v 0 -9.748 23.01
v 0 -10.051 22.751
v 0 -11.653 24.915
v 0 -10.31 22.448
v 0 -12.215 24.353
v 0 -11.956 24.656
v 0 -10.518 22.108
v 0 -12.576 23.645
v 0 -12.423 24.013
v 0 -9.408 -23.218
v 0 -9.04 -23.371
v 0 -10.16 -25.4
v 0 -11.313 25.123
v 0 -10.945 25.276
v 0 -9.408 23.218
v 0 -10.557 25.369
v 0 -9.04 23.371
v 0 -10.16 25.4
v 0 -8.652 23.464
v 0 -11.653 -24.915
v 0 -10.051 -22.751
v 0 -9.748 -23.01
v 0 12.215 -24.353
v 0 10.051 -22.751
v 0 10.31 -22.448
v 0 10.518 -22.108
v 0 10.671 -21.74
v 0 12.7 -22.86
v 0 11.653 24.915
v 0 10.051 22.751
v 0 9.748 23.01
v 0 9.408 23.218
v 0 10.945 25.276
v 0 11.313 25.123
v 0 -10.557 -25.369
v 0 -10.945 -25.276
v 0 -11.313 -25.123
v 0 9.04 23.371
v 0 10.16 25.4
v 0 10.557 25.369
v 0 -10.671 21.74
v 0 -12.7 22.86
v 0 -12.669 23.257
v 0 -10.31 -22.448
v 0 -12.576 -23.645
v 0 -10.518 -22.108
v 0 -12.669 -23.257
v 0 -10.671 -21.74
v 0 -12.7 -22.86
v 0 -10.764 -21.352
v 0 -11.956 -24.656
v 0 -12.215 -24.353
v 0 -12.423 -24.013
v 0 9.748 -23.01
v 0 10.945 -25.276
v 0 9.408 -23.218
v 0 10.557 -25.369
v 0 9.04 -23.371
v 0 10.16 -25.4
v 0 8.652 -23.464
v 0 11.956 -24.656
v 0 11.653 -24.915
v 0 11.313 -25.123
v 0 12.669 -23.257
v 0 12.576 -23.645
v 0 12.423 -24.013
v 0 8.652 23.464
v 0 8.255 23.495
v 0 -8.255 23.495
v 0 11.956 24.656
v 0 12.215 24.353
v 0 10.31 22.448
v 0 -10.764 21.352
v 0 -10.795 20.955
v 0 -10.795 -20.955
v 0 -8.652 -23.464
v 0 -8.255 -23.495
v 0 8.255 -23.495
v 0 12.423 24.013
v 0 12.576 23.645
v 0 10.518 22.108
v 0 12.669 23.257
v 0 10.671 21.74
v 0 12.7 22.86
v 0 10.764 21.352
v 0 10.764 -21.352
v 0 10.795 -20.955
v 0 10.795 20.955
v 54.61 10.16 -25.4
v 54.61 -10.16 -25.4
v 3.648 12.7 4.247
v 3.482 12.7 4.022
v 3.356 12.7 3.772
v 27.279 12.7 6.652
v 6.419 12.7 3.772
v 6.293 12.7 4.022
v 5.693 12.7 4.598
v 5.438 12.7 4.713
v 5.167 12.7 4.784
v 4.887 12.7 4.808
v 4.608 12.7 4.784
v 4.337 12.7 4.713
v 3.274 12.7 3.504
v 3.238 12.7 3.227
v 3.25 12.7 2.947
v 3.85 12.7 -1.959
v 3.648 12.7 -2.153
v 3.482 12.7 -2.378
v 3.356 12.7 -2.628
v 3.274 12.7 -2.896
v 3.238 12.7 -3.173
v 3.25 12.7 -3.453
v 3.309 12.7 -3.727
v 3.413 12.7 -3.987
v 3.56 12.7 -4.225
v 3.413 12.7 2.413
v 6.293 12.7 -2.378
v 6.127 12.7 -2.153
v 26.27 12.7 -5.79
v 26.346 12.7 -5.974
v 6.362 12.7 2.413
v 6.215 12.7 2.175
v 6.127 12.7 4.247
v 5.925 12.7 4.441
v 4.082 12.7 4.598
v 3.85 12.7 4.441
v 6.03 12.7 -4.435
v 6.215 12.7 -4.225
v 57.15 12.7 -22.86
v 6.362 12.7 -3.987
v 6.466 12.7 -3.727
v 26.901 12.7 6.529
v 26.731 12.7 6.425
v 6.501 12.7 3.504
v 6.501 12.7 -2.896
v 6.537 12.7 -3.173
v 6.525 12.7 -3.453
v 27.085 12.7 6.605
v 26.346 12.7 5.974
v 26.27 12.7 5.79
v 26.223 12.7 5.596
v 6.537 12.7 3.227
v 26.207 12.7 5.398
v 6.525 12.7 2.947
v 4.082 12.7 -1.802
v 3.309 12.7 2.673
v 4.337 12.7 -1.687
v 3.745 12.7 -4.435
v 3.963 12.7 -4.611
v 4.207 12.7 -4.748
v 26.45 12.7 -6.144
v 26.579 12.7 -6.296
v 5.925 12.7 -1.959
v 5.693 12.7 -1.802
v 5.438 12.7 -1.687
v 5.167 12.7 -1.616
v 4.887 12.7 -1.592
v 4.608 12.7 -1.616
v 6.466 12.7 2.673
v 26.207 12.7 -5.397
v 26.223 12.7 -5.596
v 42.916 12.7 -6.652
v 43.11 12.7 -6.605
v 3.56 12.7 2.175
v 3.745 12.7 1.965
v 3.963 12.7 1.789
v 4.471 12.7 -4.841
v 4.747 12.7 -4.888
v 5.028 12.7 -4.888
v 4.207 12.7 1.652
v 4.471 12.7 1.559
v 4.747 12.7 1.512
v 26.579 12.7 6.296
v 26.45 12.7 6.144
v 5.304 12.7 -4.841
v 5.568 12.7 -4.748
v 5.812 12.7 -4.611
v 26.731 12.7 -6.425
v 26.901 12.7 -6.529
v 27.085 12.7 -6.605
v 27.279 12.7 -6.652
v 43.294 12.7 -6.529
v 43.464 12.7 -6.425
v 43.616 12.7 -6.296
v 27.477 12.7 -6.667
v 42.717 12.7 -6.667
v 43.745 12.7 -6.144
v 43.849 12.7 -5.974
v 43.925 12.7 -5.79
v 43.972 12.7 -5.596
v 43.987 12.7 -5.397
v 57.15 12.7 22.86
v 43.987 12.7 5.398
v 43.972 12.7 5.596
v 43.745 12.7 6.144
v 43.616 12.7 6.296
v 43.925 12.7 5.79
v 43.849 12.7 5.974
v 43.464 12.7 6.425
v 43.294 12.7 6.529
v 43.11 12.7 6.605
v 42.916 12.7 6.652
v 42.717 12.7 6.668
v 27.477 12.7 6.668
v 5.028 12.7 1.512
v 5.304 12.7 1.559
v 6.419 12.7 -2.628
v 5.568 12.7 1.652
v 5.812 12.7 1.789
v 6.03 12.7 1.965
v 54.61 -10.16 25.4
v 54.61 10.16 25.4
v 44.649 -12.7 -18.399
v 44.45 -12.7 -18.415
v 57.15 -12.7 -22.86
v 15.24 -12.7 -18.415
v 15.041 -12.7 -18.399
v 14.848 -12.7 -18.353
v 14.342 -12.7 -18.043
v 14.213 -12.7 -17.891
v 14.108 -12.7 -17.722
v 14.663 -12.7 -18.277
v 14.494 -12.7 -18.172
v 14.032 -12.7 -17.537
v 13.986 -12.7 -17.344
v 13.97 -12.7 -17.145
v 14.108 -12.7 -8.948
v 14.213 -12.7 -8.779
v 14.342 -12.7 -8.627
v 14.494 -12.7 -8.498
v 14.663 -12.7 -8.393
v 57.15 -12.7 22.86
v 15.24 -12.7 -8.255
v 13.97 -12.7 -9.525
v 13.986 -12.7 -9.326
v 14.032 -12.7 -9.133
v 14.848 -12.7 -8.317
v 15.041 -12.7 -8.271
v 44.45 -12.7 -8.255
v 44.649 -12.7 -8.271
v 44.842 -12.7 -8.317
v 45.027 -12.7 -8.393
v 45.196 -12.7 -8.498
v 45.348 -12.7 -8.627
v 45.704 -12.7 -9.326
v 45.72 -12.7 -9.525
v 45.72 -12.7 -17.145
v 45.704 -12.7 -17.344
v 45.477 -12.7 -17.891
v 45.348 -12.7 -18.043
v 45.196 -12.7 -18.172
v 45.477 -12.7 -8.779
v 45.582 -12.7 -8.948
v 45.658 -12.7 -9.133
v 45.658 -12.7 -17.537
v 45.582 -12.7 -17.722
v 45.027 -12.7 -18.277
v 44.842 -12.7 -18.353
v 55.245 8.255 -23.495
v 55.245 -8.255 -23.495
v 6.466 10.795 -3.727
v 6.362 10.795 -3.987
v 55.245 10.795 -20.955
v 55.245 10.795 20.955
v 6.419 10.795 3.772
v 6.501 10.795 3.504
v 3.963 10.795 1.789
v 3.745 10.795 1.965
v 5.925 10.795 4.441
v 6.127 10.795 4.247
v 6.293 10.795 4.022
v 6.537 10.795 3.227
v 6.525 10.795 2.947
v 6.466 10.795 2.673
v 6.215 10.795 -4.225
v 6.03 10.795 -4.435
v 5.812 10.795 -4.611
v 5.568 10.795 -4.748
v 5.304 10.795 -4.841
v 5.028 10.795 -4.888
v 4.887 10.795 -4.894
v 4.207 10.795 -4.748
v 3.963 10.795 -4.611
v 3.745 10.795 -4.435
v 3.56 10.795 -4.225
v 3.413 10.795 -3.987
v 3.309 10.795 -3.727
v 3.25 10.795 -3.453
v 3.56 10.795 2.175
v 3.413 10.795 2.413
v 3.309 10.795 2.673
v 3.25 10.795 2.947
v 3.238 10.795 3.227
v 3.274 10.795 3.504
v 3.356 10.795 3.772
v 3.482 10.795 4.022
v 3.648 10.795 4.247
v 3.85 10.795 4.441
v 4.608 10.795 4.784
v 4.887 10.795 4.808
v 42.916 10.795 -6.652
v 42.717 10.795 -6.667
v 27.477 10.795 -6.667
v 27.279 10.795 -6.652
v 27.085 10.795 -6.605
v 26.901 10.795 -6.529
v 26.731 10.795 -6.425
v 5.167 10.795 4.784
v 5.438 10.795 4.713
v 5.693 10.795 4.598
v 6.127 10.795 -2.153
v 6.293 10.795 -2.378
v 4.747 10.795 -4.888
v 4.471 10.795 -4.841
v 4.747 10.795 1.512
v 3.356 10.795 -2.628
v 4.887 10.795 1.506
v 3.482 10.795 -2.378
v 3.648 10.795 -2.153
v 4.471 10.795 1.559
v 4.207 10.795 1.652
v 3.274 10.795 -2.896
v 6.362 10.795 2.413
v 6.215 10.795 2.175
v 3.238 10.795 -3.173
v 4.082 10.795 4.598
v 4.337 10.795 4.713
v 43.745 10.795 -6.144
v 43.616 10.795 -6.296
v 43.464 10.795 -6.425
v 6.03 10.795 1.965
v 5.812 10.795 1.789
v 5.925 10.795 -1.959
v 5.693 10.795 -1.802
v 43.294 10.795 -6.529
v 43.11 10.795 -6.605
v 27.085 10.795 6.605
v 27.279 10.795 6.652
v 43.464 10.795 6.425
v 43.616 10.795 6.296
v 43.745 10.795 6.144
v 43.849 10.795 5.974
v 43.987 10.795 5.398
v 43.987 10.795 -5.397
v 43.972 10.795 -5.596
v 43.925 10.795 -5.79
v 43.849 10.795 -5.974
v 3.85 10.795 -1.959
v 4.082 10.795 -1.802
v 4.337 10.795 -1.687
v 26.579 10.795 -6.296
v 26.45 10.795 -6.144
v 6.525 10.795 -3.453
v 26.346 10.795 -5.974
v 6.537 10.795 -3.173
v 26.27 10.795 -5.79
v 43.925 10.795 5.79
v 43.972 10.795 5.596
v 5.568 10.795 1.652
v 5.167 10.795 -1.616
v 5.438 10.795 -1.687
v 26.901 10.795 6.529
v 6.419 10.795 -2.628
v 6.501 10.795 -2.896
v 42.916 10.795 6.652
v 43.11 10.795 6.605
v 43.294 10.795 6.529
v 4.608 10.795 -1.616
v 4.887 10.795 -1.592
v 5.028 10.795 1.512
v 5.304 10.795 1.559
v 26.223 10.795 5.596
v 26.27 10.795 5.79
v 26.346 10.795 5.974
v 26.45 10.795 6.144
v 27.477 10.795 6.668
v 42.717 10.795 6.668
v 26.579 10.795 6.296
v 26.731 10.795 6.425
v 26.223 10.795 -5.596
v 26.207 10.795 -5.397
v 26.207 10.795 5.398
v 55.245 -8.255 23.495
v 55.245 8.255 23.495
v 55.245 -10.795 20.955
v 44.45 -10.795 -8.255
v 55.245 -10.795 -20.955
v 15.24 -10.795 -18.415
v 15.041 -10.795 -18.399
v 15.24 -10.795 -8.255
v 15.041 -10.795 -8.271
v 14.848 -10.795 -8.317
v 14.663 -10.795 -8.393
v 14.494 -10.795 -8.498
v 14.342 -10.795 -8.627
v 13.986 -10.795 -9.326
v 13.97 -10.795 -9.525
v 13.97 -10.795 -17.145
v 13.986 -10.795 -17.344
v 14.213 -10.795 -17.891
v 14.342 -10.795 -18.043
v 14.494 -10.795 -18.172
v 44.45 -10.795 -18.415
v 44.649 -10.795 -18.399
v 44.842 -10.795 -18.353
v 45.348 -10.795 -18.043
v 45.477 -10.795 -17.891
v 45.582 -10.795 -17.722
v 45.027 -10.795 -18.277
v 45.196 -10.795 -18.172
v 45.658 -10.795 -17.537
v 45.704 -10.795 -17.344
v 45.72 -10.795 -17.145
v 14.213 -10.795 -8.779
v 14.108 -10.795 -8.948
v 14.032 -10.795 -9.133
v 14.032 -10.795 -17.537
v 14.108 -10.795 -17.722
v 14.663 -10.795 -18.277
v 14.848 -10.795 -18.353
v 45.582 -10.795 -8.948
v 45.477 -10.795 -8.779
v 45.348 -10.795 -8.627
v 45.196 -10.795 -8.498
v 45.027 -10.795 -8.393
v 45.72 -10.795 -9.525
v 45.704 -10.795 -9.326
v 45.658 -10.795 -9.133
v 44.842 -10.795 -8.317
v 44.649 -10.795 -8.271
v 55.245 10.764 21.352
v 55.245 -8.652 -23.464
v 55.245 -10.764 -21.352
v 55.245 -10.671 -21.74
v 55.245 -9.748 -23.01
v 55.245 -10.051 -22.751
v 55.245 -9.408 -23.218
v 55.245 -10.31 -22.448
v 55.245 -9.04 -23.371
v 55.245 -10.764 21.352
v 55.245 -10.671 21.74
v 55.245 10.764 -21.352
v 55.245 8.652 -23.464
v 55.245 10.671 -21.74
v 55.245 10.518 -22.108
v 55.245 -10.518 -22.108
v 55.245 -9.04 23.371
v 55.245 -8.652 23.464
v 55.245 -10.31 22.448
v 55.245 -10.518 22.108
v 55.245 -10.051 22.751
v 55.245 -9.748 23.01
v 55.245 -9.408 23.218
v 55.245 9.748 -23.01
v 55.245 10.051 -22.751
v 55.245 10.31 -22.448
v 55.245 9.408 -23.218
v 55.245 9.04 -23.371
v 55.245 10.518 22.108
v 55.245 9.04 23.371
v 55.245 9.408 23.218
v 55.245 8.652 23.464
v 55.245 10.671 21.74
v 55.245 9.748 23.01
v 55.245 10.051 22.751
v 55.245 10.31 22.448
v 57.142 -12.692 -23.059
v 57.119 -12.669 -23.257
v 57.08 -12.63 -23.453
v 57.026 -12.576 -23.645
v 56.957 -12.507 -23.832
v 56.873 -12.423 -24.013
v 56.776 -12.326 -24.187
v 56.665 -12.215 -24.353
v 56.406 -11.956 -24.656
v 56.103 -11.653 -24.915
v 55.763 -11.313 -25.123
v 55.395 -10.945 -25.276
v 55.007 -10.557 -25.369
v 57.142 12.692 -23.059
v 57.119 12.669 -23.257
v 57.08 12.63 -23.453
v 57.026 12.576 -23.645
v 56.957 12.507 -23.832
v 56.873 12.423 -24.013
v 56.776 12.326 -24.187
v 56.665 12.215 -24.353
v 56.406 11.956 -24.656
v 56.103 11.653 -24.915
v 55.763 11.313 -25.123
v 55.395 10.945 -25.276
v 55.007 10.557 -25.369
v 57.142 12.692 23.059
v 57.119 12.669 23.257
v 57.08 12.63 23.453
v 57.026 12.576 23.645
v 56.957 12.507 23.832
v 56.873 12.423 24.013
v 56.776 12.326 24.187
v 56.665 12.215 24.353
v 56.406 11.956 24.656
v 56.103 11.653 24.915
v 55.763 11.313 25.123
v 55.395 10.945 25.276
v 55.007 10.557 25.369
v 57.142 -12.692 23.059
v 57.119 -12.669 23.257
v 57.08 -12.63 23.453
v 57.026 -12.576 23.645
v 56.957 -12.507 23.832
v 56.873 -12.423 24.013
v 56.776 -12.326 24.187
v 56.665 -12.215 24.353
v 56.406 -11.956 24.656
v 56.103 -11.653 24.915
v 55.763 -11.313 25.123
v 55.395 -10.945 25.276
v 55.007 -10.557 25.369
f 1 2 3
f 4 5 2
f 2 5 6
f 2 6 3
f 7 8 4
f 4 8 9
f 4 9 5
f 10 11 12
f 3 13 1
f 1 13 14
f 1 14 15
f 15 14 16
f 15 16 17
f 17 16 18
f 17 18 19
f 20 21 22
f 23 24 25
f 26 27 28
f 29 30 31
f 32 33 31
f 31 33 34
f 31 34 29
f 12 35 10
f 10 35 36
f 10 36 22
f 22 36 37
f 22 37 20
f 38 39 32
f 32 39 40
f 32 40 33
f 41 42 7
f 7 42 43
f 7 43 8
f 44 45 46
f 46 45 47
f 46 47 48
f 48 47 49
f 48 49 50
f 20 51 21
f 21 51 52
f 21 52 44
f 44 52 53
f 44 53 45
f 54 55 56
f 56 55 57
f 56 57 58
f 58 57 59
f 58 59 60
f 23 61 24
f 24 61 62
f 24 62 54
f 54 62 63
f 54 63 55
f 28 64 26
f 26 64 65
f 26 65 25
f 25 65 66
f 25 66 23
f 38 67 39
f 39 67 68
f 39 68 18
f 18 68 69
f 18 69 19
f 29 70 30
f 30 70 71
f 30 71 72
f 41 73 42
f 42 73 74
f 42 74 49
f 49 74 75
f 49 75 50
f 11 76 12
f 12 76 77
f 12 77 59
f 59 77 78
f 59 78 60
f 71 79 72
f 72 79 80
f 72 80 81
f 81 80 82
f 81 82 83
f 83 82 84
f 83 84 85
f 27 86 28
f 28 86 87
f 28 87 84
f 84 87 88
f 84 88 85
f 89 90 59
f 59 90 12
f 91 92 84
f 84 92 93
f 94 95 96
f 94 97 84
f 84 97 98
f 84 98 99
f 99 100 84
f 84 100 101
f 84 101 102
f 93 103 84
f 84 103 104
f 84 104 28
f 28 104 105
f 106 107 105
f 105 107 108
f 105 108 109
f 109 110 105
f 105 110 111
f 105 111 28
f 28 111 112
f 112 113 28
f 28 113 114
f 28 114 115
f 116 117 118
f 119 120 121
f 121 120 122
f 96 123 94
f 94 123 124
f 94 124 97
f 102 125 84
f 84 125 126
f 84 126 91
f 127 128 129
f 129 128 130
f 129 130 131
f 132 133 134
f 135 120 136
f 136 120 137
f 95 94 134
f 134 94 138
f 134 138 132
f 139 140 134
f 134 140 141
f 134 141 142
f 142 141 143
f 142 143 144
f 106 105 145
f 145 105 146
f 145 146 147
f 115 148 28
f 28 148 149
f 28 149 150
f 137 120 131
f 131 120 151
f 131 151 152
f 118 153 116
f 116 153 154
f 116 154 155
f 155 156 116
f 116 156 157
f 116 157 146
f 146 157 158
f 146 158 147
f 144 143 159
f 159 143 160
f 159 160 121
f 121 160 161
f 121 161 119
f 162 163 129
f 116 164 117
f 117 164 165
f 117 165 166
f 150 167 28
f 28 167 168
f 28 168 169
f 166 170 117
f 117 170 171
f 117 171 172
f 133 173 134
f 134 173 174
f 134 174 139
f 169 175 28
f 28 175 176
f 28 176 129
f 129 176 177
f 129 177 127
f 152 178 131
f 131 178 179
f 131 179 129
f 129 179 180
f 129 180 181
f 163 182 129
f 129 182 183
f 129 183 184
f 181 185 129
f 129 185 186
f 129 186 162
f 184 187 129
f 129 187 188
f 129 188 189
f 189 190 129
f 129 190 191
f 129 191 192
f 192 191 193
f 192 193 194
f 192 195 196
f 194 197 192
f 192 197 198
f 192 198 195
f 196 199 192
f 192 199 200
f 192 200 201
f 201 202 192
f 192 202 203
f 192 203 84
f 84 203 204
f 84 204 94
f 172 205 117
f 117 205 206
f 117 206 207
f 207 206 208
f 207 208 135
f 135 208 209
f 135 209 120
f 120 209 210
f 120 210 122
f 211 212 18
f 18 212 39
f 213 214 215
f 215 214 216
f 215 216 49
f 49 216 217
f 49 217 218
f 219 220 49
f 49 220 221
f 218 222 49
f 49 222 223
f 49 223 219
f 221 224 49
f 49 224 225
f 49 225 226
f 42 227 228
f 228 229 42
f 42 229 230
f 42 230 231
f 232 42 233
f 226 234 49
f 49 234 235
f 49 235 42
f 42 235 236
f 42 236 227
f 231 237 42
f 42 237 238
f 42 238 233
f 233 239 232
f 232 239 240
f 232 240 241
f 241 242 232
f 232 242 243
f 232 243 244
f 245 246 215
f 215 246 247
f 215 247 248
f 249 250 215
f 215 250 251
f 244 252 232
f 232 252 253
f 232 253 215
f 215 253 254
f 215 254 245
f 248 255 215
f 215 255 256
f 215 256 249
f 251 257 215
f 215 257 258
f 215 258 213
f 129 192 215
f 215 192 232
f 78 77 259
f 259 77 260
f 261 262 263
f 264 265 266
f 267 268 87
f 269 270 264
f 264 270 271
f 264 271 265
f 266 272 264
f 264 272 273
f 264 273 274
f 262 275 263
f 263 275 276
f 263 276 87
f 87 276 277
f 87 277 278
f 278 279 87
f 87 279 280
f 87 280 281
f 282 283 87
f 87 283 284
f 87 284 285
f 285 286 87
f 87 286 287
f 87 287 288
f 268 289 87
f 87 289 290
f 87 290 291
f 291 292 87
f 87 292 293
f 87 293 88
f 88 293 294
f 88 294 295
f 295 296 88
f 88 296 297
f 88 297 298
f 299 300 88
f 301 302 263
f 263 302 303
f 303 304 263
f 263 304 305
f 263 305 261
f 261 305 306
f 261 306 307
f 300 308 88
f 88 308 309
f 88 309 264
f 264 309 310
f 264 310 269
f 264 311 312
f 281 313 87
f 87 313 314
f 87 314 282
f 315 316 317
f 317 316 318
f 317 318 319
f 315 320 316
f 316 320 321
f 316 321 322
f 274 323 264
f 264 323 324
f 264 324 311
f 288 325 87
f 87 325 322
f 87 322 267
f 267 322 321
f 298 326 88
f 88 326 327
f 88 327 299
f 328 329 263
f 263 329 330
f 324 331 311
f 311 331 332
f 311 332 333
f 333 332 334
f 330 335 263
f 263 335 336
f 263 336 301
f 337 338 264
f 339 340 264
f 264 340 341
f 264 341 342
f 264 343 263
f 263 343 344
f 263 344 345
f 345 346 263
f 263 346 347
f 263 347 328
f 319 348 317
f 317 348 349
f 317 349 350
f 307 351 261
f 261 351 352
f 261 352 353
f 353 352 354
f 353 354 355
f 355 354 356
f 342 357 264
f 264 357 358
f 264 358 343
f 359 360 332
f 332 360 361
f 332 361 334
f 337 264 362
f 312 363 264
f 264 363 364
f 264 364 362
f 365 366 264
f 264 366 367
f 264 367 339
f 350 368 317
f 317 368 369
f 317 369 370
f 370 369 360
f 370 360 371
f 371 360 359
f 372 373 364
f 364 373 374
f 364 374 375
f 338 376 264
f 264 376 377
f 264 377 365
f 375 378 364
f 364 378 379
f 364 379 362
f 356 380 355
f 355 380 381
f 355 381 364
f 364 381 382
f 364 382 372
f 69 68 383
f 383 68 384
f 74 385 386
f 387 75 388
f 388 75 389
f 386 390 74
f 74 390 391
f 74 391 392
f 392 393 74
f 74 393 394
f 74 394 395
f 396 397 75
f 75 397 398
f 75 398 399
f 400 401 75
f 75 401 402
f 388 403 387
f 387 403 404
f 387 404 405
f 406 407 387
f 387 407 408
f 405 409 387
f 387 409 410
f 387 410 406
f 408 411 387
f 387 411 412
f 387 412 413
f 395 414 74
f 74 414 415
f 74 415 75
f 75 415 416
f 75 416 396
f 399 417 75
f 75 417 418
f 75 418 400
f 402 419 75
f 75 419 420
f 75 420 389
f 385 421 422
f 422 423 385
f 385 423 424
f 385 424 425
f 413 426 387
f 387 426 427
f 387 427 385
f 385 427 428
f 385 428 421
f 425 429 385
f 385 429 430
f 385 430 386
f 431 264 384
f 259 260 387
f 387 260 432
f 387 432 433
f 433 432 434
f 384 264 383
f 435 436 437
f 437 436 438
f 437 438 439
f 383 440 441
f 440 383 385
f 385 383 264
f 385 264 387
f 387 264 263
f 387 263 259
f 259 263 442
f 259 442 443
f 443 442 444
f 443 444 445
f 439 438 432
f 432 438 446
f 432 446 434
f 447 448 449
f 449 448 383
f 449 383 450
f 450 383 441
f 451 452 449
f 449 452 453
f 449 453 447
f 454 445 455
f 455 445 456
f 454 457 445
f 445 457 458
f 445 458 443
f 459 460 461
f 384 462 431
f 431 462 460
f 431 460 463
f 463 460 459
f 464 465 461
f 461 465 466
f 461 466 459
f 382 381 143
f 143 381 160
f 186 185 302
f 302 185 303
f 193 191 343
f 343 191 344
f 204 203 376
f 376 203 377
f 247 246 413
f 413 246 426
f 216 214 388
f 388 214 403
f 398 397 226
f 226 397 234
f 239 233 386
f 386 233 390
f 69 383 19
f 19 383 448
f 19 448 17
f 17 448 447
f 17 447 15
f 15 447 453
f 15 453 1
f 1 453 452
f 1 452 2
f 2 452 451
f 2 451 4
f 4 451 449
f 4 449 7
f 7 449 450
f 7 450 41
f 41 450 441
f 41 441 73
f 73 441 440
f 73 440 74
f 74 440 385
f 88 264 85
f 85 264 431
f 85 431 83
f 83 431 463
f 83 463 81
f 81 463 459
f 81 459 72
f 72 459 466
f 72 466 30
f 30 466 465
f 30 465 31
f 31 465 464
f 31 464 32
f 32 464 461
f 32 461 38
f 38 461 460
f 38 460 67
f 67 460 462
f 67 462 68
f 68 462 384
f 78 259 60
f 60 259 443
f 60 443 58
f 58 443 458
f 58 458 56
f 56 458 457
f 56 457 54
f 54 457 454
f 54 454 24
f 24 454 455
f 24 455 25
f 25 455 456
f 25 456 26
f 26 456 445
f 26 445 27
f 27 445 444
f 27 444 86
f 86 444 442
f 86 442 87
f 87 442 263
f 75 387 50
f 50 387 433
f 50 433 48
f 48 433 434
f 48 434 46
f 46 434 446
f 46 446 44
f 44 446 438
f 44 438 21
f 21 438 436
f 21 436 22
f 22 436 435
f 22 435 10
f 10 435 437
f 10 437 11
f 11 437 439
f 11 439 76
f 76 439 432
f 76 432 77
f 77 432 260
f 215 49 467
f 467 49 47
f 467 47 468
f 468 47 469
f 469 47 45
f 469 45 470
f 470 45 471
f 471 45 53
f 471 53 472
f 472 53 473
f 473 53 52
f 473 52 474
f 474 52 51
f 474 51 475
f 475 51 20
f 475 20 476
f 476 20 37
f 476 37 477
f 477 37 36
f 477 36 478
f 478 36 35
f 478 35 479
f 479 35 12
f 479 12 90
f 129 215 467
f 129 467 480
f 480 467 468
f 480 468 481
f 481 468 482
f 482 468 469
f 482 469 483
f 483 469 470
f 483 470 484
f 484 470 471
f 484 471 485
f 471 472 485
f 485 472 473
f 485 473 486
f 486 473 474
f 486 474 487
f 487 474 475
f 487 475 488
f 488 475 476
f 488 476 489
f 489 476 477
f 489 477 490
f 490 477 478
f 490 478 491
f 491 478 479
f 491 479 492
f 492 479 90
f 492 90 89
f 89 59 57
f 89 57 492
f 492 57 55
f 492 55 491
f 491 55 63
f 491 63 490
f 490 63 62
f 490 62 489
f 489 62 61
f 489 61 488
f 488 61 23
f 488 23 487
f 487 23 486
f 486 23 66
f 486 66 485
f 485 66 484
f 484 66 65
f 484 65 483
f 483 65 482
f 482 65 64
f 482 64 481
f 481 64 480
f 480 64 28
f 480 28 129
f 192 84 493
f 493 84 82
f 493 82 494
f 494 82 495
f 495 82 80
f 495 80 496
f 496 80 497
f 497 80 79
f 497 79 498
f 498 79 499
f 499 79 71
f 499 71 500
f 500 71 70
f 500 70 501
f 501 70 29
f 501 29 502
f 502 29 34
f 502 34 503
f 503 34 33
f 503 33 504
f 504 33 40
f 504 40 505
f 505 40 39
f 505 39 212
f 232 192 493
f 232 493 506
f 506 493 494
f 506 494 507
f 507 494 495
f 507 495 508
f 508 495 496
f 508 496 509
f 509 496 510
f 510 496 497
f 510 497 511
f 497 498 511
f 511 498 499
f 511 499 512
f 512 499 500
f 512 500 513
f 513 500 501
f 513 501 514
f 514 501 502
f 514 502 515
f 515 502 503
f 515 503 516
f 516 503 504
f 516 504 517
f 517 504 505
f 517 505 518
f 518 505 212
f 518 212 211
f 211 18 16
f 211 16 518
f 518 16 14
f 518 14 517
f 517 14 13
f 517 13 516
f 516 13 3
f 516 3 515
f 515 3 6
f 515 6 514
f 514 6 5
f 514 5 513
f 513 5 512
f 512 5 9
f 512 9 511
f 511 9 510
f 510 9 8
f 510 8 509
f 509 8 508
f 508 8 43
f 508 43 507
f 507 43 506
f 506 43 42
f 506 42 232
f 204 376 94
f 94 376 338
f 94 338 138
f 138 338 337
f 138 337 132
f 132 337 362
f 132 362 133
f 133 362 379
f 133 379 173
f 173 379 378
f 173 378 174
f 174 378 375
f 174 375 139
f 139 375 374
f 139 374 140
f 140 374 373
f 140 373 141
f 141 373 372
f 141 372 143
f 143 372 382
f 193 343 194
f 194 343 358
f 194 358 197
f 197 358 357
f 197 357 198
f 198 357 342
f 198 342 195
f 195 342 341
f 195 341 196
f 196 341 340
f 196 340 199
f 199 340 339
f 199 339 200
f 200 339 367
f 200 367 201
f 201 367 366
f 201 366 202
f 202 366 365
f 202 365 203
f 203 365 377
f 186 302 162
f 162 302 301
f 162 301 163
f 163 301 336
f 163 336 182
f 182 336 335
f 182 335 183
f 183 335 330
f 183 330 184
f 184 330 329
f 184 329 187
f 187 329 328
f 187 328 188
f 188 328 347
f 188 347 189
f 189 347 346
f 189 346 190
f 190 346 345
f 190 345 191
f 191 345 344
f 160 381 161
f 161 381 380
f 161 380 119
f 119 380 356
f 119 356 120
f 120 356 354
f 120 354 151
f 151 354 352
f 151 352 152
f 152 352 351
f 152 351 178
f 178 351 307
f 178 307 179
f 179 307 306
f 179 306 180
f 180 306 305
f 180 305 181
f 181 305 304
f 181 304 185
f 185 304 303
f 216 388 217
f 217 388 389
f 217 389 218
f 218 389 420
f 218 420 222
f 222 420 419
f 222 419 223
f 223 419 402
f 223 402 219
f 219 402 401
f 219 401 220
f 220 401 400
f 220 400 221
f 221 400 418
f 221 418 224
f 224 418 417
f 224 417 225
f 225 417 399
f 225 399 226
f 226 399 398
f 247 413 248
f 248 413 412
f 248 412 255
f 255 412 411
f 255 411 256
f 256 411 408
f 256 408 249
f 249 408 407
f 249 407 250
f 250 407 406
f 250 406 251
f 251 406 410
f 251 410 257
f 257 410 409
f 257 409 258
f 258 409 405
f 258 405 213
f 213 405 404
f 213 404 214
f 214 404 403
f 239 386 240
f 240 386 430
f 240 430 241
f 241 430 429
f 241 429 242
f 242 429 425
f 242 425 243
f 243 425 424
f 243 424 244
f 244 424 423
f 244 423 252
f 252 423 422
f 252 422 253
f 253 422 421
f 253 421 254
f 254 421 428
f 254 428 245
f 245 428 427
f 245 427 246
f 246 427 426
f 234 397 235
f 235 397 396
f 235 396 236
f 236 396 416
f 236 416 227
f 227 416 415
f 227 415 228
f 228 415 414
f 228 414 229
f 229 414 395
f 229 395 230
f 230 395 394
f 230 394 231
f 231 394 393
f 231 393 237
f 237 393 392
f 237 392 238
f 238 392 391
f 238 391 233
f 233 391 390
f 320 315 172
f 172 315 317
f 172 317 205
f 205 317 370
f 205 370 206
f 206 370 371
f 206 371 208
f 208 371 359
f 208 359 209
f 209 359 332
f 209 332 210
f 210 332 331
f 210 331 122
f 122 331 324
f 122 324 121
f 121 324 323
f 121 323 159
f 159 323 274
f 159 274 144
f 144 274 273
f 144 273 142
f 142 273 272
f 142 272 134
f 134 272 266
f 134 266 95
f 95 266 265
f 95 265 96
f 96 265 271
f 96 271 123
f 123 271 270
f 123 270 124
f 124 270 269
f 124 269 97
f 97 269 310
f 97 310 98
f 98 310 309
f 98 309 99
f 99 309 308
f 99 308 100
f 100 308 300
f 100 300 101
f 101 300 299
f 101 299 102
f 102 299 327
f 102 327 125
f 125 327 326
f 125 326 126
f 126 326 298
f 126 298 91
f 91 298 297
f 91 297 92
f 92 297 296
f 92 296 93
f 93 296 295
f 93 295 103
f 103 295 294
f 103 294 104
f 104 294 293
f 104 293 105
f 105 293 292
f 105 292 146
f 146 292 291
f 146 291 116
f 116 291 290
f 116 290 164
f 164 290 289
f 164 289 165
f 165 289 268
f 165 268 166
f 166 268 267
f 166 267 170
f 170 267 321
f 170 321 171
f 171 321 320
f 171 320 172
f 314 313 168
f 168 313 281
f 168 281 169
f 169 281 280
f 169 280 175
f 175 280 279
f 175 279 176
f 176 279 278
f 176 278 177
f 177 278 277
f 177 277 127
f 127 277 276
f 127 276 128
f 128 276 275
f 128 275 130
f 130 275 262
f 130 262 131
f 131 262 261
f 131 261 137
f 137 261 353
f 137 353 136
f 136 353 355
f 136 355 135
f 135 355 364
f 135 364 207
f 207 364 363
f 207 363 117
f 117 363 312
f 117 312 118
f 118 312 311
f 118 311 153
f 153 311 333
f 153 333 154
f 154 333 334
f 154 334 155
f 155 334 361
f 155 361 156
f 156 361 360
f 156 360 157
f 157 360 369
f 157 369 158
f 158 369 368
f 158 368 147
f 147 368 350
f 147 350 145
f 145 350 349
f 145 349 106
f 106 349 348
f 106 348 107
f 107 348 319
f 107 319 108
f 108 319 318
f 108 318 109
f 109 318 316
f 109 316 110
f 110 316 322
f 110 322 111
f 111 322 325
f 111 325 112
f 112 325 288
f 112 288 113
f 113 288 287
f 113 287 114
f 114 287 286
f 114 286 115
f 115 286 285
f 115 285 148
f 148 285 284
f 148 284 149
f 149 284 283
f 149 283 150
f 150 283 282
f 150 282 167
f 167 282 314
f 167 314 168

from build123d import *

# Parameters (mm, degrees)
SKETCH1_W           = 50.8
SKETCH1_H           = 25.4
BOSS_EXTRUDE1_DEPTH = 57.15
SHELL1_T            = -1.905
SKETCH2_W           = 17.78
SKETCH2_H           = 13.335
CUT_EXTRUDE1_DEPTH  = 12.7
SKETCH3_W           = 31.75
SKETCH3_H           = 10.16
CUT_EXTRUDE2_DEPTH  = 12.7
FILLET1_R           = 2.54
FILLET2_R           = 1.27
FILLET3_R           = 1.27
SKETCH5_R           = 1.651
CUT_EXTRUDE3_DEPTH  = 2.54


with BuildPart() as part:
    # Sketch1 → Boss-Extrude1 (new body)
    with BuildSketch(Plane(origin=(0, 0, 0), x_dir=(0, 0, -1), z_dir=(1, 0, 0))):
        Rectangle(SKETCH1_W, SKETCH1_H)
    extrude(amount=BOSS_EXTRUDE1_DEPTH)

    # Shell1
    shell1_openings = [part.faces().sort_by_distance(p)[0] for p in [
        (0, 0, 0),
    ]]
    offset(amount=SHELL1_T, openings=shell1_openings, kind=Kind.INTERSECTION)

    # Sketch2 → Cut-Extrude1 (cut)
    with BuildSketch(Plane(origin=(0, 12.7, 0), x_dir=(1, 0, 0), z_dir=(0, 1, 0))):
        with Locations((35.0974914, 0)):
            Rectangle(SKETCH2_W, SKETCH2_H)
    extrude(amount=-CUT_EXTRUDE1_DEPTH, mode=Mode.SUBTRACT)

    # Sketch3 → Cut-Extrude2 (cut)
    with BuildSketch(Plane.XZ.offset(12.7)):
        with Locations((29.845, -13.335)):
            Rectangle(SKETCH3_W, SKETCH3_H)
    extrude(amount=-CUT_EXTRUDE2_DEPTH, mode=Mode.SUBTRACT)

    # Fillet1
    fillet1_edges = [part.edges().sort_by_distance(p)[0] for p in [
        (57.15, 0, 25.4),
        (27.6225, -10.795, -23.495),
        (27.6225, 10.795, -23.495),
        (27.6225, 10.795, 23.495),
        (27.6225, -10.795, 23.495),
        (57.15, 0, -25.4),
        (28.575, -12.7, -25.4),
        (28.575, -12.7, 25.4),
        (28.575, 12.7, 25.4),
        (28.575, 12.7, -25.4),
    ]]
    fillet(fillet1_edges, radius=FILLET1_R)

    # Fillet2
    fillet2_edges = [part.edges().sort_by_distance(p)[0] for p in [
        (26.2074914, 11.7475, 6.6675),
        (26.2074914, 11.7475, -6.6675),
        (43.9874914, 11.7475, -6.6675),
        (43.9874914, 11.7475, 6.6675),
    ]]
    fillet(fillet2_edges, radius=FILLET2_R)

    # Fillet3
    fillet3_edges = [part.edges().sort_by_distance(p)[0] for p in [
        (45.72, -11.7475, -8.255),
        (45.72, -11.7475, -18.415),
        (13.97, -11.7475, -18.415),
        (13.97, -11.7475, -8.255),
    ]]
    fillet(fillet3_edges, radius=FILLET3_R)

    # Sketch5 → Cut-Extrude3 (cut)
    with BuildSketch(Plane(origin=(0, 12.7, 0), x_dir=(1, 0, 0), z_dir=(0, 1, 0))):
        with Locations(Location((4.8875, 3.243405994, 0), (0, 0, 270))):
            Circle(SKETCH5_R)
        with Locations(Location((4.8875, -3.156594006, 0), (0, 0, 270))):
            Circle(SKETCH5_R)
    extrude(amount=-CUT_EXTRUDE3_DEPTH, mode=Mode.SUBTRACT)


solid = part.part
